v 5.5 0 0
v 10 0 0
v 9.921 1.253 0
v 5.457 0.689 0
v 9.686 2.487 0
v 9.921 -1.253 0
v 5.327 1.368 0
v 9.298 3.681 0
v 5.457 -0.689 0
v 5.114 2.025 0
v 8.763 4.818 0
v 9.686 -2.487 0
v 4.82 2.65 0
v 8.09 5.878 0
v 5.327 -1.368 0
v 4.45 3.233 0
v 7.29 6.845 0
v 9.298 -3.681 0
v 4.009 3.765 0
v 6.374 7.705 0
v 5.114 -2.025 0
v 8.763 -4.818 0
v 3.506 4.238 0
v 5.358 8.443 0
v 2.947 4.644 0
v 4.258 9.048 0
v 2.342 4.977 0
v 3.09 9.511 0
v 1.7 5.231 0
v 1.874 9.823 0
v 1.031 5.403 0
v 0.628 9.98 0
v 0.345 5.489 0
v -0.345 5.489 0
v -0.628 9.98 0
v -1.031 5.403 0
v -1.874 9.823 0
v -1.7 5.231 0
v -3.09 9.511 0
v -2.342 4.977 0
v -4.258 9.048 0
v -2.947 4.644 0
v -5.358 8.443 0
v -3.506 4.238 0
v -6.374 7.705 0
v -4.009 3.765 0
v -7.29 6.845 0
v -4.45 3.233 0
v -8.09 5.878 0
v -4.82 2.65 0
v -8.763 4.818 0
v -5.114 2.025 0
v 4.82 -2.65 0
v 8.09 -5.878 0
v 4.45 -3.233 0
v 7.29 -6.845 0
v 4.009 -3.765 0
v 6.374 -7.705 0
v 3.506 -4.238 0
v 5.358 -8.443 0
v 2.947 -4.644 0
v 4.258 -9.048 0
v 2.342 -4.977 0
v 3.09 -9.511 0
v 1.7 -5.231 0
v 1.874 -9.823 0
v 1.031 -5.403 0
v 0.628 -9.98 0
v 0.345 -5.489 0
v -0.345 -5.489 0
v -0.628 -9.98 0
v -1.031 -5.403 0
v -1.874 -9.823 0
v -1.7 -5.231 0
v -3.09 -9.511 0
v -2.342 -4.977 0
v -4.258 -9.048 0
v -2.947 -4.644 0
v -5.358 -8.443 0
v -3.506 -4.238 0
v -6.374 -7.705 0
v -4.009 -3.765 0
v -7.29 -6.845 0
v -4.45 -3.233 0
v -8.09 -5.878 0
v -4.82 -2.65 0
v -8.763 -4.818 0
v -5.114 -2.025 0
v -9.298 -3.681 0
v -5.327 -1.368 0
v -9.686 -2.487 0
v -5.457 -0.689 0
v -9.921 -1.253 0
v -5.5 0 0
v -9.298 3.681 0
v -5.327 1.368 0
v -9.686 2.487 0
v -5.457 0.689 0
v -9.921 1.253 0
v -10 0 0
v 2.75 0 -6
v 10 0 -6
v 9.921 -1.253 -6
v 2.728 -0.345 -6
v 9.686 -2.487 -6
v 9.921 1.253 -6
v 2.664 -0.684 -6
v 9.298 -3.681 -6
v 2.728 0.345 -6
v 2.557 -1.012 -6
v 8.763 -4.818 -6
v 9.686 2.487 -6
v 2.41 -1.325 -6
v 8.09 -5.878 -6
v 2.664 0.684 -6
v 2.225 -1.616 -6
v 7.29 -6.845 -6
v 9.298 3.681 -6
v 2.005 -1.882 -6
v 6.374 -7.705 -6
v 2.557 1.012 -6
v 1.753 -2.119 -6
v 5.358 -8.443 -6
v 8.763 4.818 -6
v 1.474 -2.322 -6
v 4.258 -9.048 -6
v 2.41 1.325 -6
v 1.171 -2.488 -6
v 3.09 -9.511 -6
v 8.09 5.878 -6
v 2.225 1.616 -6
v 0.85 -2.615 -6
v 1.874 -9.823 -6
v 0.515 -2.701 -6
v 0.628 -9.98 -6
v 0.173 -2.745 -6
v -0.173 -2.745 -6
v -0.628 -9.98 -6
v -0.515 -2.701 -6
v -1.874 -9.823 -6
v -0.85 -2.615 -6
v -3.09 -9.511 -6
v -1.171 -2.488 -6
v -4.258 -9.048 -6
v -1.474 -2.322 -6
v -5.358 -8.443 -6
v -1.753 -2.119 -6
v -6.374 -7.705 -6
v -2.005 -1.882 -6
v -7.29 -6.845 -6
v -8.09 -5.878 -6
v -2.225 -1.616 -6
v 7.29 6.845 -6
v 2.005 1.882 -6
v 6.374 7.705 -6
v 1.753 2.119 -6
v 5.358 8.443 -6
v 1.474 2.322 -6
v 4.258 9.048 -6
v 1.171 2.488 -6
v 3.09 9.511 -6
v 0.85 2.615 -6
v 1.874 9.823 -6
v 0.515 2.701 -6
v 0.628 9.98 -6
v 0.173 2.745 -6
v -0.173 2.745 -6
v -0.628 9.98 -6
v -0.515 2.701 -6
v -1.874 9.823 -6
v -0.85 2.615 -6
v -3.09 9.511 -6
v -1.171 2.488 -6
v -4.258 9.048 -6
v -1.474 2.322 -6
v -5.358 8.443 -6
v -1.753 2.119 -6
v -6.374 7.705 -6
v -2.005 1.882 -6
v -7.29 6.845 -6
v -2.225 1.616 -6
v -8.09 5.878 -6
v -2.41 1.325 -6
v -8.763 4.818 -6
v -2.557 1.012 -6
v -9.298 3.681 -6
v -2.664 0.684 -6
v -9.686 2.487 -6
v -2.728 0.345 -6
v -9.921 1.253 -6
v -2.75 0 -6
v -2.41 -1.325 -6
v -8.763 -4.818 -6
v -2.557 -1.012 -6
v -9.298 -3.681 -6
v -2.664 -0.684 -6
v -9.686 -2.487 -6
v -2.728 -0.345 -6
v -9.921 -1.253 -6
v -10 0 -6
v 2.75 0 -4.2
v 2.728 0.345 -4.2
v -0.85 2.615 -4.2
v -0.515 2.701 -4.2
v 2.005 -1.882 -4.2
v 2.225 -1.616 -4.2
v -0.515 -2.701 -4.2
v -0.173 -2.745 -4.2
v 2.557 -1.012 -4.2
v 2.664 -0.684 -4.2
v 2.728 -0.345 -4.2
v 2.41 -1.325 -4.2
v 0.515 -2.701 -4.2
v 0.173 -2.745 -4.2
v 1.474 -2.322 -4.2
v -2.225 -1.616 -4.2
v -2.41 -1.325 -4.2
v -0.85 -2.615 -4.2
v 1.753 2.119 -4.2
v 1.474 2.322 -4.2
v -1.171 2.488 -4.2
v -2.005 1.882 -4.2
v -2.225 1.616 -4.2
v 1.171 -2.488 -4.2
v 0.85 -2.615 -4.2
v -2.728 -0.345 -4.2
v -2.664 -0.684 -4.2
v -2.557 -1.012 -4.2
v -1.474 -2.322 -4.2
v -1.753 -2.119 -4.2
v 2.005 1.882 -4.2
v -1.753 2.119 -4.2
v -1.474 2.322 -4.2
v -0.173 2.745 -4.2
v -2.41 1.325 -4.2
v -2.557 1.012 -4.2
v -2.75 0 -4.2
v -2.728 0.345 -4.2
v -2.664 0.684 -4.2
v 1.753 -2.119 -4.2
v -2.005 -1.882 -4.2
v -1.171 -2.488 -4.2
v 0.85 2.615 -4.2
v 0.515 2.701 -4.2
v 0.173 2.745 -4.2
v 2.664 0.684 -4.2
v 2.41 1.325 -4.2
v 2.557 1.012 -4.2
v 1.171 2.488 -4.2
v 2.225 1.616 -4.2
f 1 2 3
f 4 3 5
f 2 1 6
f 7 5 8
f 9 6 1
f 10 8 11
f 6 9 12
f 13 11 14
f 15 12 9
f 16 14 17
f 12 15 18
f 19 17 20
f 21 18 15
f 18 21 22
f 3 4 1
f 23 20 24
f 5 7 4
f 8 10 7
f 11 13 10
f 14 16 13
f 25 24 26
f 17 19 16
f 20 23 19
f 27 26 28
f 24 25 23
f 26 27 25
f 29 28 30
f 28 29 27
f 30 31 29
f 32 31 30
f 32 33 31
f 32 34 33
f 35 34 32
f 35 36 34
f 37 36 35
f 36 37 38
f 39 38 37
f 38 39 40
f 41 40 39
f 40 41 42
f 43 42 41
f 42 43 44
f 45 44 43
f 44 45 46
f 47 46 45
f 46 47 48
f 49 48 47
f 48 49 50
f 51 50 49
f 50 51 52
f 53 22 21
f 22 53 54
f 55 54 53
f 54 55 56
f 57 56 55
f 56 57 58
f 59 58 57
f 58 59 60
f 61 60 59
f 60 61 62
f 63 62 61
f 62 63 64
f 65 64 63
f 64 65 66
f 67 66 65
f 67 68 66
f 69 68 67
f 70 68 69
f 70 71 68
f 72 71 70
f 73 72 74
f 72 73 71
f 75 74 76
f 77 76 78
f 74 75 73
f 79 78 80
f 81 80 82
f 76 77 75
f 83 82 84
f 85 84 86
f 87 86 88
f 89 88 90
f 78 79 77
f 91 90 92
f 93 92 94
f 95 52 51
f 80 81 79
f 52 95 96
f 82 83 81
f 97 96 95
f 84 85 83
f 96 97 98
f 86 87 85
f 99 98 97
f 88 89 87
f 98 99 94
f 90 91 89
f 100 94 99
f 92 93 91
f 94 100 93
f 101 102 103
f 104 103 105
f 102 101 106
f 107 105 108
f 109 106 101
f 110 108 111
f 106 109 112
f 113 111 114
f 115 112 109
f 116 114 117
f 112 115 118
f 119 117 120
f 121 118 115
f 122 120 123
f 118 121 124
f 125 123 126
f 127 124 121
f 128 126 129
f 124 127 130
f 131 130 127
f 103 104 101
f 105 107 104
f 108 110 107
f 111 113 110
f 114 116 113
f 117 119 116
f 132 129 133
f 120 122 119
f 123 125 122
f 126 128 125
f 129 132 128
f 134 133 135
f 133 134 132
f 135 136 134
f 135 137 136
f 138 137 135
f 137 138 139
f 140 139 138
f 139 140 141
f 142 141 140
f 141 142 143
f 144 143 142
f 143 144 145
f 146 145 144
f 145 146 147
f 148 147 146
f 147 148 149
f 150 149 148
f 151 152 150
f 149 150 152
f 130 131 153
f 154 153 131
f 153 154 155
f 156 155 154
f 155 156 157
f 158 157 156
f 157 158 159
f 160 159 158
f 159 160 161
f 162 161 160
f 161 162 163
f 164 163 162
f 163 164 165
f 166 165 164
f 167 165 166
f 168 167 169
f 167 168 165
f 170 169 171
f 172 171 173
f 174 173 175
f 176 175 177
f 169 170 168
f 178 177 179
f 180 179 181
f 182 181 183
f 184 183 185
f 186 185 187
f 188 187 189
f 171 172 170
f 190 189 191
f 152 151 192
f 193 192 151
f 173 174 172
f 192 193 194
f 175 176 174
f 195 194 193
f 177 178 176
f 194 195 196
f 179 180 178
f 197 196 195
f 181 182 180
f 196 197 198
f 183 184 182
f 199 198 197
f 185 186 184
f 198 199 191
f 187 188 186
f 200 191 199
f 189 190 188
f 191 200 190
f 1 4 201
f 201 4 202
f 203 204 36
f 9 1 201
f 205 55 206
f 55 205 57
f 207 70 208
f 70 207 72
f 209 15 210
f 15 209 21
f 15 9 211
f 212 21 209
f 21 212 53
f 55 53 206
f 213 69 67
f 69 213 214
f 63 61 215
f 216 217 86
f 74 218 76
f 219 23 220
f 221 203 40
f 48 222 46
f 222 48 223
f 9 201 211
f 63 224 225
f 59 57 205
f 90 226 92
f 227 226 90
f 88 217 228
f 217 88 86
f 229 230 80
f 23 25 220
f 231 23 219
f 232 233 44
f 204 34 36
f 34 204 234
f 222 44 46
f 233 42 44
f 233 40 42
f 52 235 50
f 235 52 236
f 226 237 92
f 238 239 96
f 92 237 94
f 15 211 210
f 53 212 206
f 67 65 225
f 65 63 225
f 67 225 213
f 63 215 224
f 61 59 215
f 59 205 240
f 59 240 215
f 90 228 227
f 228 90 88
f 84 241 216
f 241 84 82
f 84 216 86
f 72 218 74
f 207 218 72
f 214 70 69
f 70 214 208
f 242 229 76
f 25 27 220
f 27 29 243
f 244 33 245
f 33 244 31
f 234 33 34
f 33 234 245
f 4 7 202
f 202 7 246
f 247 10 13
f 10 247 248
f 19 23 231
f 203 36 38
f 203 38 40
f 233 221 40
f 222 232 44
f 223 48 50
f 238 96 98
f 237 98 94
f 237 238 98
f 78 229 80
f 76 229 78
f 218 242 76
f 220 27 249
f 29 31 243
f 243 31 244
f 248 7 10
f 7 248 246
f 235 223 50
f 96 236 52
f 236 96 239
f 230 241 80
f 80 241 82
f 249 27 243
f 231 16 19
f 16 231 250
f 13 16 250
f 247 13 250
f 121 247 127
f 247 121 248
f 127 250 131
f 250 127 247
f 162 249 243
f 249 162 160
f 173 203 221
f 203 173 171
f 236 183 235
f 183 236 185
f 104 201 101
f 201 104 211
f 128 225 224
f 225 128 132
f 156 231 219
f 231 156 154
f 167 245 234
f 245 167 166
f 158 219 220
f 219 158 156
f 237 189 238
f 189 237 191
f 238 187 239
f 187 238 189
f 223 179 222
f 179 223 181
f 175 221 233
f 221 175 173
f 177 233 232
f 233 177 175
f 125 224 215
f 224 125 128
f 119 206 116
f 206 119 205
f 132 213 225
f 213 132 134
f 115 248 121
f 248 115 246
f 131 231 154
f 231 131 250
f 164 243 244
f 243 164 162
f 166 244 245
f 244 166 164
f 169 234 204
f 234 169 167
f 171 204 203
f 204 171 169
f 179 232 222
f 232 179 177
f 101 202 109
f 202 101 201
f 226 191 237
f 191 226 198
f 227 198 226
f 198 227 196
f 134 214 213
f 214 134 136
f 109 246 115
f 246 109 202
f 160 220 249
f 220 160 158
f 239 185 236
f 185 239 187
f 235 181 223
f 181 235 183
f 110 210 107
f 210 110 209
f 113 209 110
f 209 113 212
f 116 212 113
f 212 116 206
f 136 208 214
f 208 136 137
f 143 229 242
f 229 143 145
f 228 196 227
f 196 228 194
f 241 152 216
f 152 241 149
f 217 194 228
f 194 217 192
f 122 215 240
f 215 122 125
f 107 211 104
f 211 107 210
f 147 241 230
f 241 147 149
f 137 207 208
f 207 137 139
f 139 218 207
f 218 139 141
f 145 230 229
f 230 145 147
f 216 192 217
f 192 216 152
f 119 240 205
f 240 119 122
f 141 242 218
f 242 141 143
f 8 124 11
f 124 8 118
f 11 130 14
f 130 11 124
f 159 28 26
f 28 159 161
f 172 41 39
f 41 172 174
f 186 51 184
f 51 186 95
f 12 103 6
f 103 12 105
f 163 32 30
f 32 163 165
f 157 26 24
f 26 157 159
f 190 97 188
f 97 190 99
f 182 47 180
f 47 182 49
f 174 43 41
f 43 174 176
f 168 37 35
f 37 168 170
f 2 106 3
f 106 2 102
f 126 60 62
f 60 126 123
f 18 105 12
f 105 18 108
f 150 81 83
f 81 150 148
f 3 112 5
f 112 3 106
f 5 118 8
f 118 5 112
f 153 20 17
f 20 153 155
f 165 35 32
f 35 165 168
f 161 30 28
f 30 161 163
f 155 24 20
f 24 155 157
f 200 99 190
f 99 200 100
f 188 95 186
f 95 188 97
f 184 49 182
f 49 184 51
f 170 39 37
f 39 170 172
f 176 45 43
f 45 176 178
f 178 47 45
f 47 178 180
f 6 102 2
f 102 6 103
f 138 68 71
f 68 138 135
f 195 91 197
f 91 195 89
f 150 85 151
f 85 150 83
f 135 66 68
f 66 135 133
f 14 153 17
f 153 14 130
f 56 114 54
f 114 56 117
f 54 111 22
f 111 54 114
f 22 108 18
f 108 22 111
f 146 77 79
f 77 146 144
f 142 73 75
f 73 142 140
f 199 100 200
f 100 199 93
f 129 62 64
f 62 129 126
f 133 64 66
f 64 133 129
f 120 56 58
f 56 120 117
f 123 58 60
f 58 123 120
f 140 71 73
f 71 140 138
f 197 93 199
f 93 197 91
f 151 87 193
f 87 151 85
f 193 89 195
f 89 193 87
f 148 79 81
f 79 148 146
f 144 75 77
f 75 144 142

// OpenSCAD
$fn = 50;


difference() {
	union() {
		translate(v = [0, 0, -6.0000000000]) {
			cylinder(h = 6, r = 10.0000000000);
		}
		cylinder(h = 0, r = 20.0000000000);
	}
	union() {
		translate(v = [0, 0, 0]) {
			rotate(a = [0, 0, 0]) {
				difference() {
					union() {
						#translate(v = [0, 0, -6.0000000000]) {
							cylinder(h = 6, r = 2.2500000000);
						}
						#translate(v = [0, 0, -4.2000000000]) {
							cylinder(h = 4.2000000000, r1 = 2.7500000000, r2 = 5.5000000000);
						}
						#translate(v = [0, 0, -6.0000000000]) {
							cylinder(h = 6, r = 2.7500000000);
						}
						#translate(v = [0, 0, -6.0000000000]) {
							cylinder(h = 6, r = 2.2500000000);
						}
					}
					union();
				}
			}
		}
	}
}
